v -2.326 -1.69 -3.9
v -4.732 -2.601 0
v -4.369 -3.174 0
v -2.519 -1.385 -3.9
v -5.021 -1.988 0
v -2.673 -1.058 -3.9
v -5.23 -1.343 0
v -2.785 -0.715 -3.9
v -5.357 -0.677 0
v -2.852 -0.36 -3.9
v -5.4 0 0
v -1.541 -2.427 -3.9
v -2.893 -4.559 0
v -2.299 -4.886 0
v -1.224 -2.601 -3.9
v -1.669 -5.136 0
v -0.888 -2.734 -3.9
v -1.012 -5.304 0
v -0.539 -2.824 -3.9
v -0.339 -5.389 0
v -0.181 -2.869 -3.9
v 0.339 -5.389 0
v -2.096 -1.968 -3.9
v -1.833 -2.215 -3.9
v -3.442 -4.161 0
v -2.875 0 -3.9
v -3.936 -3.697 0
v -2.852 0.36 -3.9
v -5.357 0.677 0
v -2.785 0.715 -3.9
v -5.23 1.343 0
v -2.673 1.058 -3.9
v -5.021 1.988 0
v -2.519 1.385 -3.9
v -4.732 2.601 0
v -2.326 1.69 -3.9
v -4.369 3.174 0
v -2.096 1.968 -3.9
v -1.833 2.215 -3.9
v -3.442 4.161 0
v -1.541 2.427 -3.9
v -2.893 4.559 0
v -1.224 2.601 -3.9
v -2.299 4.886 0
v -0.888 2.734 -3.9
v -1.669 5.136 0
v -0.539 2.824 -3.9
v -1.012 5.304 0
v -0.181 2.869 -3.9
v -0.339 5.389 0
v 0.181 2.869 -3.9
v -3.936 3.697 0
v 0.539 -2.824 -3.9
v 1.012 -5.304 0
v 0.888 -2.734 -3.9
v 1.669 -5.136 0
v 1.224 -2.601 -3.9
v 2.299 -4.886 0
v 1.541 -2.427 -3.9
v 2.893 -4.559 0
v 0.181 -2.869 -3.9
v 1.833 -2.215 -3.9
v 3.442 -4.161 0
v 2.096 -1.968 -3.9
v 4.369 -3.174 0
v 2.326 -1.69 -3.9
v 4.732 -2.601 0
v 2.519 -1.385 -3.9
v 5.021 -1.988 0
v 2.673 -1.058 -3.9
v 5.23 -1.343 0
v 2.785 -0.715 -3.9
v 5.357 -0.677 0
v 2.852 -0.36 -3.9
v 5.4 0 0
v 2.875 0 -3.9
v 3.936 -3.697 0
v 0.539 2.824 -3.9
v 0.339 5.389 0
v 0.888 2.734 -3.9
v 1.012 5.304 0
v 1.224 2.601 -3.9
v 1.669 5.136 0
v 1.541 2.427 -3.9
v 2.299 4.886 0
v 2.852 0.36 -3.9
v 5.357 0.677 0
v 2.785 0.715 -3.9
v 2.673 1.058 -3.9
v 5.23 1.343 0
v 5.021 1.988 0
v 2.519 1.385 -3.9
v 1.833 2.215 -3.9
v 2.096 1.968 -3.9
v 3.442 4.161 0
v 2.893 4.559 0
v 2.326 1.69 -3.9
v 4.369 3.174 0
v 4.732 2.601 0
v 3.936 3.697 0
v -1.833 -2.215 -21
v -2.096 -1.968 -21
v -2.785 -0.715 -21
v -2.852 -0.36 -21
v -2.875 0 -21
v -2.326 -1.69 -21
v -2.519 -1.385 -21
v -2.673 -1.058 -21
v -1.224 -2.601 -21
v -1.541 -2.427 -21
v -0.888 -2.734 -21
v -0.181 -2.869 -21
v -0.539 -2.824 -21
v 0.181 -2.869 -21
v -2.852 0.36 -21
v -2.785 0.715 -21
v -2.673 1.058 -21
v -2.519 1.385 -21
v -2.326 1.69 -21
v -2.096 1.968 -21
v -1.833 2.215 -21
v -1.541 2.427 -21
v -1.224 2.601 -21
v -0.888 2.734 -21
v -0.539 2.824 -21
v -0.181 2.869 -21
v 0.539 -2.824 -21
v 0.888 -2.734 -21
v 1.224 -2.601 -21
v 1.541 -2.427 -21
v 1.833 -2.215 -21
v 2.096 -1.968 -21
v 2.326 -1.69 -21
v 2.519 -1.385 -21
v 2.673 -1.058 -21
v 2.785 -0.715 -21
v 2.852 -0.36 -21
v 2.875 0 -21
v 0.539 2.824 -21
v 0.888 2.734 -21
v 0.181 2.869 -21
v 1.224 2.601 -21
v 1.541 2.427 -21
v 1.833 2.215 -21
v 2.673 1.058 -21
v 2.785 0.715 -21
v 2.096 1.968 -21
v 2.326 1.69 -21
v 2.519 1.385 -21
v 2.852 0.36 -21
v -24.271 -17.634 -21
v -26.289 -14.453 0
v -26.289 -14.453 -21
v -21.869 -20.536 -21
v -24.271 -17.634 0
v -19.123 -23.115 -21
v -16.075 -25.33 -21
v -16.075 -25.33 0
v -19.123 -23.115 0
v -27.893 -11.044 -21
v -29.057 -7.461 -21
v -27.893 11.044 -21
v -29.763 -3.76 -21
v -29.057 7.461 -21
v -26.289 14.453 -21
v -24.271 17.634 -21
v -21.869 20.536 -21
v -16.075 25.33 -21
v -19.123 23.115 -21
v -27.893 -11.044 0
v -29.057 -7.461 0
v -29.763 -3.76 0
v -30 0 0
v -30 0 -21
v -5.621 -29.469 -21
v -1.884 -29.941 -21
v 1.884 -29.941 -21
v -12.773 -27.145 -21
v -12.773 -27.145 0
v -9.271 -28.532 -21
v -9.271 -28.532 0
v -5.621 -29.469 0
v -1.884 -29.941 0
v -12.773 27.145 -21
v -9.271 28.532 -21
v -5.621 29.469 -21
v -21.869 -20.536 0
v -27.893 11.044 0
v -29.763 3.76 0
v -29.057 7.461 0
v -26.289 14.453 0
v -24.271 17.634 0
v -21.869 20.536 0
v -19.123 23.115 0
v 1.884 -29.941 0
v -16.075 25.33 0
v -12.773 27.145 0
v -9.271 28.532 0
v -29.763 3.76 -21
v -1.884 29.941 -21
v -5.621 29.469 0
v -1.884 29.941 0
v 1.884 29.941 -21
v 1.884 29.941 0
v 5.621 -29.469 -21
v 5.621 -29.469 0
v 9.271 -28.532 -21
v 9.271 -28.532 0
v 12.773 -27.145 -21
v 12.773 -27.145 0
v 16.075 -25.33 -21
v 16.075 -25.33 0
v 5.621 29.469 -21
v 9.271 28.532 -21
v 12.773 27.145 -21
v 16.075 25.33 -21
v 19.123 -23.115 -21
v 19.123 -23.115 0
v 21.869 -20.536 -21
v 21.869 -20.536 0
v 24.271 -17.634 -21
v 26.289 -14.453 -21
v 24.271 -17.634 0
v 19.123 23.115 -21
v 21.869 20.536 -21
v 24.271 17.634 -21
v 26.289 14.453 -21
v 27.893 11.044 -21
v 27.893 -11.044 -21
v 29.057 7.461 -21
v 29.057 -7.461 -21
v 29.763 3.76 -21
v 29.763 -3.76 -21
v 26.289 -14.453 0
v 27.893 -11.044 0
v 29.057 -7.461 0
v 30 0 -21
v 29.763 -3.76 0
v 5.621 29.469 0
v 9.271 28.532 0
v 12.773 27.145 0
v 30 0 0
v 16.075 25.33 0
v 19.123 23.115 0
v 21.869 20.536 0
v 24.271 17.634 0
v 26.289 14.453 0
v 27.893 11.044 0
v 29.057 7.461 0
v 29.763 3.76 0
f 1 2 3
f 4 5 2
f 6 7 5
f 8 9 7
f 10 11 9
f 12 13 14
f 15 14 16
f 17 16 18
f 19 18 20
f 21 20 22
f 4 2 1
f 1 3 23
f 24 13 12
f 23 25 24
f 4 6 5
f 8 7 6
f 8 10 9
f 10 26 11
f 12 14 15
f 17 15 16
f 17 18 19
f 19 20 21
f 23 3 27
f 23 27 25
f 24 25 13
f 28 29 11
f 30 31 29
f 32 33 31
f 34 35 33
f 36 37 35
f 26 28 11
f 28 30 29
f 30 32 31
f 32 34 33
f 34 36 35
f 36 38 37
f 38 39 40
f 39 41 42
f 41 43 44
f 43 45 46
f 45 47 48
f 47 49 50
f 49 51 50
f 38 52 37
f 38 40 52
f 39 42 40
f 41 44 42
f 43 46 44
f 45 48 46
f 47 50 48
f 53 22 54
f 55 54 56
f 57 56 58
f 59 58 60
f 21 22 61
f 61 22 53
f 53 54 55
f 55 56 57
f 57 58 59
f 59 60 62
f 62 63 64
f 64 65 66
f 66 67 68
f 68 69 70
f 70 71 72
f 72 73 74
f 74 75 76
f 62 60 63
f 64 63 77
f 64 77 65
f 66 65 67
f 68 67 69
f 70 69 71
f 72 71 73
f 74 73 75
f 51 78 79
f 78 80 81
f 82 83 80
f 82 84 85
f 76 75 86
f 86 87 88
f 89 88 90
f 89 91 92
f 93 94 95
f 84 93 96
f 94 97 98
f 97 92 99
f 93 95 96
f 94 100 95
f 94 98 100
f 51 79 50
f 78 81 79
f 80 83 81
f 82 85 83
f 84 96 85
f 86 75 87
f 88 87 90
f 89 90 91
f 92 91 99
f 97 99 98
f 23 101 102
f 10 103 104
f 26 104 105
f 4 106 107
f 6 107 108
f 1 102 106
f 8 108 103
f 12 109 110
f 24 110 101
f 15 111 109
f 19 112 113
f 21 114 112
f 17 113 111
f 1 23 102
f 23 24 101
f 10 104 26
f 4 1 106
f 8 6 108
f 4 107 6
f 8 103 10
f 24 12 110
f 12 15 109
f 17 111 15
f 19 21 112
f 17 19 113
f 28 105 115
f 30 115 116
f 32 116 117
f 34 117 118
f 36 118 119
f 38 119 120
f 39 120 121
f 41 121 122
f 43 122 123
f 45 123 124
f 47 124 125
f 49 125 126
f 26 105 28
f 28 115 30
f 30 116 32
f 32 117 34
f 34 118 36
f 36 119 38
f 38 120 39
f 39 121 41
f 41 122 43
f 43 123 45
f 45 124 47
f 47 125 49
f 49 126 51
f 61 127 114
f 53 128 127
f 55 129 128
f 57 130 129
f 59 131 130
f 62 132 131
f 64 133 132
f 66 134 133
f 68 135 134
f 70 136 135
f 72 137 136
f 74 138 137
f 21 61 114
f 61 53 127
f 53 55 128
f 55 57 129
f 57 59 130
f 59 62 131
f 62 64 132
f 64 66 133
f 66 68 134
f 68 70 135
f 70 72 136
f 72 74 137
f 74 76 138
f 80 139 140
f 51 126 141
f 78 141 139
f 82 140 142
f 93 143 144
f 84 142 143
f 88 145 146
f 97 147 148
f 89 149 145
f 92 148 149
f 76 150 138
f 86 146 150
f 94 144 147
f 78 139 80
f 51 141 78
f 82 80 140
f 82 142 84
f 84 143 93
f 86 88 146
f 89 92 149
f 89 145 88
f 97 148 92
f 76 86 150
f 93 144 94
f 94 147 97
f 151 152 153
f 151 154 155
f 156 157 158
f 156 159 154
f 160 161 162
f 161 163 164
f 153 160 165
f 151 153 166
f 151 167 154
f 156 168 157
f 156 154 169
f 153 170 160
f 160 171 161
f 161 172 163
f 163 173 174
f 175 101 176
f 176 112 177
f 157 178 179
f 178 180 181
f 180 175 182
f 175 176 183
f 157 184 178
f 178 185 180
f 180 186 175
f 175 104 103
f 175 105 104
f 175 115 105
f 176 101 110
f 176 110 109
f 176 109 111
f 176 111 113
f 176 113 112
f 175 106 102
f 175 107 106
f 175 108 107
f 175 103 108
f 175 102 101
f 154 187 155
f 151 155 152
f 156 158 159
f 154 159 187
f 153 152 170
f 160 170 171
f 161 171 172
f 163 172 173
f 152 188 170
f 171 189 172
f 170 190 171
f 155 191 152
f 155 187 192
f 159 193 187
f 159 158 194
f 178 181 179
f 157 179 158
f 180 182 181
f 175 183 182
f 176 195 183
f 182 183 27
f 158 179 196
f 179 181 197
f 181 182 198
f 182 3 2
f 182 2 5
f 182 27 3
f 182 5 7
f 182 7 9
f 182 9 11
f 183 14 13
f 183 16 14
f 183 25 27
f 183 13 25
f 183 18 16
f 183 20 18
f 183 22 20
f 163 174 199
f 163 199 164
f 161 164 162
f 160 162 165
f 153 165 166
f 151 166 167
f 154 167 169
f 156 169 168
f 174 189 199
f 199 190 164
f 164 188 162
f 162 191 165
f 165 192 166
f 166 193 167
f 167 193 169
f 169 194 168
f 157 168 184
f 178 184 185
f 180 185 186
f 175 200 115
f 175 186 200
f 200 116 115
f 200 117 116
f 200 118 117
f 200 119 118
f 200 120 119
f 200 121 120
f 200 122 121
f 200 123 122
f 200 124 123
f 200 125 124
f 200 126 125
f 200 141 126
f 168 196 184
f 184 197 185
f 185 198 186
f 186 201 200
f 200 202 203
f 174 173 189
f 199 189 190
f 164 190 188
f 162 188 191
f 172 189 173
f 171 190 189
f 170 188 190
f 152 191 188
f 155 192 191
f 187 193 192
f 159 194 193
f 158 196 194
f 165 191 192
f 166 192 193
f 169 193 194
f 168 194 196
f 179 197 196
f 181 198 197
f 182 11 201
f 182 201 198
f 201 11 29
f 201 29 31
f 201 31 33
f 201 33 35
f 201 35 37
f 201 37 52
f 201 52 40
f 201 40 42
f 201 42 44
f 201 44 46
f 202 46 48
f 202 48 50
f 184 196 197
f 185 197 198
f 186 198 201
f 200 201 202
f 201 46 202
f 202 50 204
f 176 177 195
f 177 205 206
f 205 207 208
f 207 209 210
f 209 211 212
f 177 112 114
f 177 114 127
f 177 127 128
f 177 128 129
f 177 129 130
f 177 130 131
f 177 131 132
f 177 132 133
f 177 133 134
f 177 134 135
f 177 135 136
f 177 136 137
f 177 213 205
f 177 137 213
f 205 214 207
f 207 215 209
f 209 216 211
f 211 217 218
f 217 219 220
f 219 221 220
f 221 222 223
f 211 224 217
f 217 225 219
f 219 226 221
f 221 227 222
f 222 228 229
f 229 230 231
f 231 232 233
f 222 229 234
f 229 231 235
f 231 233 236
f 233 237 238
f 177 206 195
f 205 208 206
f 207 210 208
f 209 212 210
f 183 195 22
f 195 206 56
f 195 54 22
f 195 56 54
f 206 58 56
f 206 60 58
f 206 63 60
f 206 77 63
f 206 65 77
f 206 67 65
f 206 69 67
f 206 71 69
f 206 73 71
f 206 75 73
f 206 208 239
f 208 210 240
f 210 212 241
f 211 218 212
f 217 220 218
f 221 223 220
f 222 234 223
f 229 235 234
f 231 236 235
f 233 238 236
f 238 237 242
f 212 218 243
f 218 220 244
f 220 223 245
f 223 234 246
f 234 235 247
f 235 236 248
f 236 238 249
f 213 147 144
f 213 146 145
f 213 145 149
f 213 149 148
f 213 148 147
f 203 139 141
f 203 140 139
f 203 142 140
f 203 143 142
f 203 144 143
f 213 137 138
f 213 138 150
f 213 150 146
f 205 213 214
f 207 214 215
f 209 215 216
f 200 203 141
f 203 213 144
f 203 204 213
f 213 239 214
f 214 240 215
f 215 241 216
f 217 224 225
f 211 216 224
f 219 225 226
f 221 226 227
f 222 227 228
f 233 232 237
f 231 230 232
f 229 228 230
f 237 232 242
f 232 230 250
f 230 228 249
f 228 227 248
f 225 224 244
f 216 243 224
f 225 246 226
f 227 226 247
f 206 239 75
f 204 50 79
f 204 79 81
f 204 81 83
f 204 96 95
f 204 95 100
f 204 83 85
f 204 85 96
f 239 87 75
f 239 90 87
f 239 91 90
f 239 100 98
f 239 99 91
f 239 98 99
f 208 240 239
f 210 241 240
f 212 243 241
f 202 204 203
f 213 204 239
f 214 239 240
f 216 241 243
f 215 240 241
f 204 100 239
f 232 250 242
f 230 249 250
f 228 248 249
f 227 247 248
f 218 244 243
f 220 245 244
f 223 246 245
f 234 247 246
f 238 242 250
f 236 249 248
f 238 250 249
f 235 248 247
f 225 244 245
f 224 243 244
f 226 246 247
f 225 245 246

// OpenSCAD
$fn = 50;

difference() {
	union() {
		translate(v = [0, 0, -21.0]) {
			cylinder(h = 21, r = 30.0);
		}
	}
	union() {
		translate(v = [0, 0, 0]) {
			rotate(a = [0, 0, 0]) {
				difference() {
					union() {
						translate(v = [0, 0, -24.0]) {
							cylinder(h = 24, r = 2.6);
						}
						translate(v = [0, 0, -3.9]) {
							cylinder(h = 3.9, r1 = 2.875, r2 = 5.4);
						}
						translate(v = [0, 0, -24.0]) {
							cylinder(h = 24, r = 2.875);
						}
						translate(v = [0, 0, -24.0]) {
							cylinder(h = 24, r = 2.6);
						}
					}
					union();
				}
			}
		}
	}
}
